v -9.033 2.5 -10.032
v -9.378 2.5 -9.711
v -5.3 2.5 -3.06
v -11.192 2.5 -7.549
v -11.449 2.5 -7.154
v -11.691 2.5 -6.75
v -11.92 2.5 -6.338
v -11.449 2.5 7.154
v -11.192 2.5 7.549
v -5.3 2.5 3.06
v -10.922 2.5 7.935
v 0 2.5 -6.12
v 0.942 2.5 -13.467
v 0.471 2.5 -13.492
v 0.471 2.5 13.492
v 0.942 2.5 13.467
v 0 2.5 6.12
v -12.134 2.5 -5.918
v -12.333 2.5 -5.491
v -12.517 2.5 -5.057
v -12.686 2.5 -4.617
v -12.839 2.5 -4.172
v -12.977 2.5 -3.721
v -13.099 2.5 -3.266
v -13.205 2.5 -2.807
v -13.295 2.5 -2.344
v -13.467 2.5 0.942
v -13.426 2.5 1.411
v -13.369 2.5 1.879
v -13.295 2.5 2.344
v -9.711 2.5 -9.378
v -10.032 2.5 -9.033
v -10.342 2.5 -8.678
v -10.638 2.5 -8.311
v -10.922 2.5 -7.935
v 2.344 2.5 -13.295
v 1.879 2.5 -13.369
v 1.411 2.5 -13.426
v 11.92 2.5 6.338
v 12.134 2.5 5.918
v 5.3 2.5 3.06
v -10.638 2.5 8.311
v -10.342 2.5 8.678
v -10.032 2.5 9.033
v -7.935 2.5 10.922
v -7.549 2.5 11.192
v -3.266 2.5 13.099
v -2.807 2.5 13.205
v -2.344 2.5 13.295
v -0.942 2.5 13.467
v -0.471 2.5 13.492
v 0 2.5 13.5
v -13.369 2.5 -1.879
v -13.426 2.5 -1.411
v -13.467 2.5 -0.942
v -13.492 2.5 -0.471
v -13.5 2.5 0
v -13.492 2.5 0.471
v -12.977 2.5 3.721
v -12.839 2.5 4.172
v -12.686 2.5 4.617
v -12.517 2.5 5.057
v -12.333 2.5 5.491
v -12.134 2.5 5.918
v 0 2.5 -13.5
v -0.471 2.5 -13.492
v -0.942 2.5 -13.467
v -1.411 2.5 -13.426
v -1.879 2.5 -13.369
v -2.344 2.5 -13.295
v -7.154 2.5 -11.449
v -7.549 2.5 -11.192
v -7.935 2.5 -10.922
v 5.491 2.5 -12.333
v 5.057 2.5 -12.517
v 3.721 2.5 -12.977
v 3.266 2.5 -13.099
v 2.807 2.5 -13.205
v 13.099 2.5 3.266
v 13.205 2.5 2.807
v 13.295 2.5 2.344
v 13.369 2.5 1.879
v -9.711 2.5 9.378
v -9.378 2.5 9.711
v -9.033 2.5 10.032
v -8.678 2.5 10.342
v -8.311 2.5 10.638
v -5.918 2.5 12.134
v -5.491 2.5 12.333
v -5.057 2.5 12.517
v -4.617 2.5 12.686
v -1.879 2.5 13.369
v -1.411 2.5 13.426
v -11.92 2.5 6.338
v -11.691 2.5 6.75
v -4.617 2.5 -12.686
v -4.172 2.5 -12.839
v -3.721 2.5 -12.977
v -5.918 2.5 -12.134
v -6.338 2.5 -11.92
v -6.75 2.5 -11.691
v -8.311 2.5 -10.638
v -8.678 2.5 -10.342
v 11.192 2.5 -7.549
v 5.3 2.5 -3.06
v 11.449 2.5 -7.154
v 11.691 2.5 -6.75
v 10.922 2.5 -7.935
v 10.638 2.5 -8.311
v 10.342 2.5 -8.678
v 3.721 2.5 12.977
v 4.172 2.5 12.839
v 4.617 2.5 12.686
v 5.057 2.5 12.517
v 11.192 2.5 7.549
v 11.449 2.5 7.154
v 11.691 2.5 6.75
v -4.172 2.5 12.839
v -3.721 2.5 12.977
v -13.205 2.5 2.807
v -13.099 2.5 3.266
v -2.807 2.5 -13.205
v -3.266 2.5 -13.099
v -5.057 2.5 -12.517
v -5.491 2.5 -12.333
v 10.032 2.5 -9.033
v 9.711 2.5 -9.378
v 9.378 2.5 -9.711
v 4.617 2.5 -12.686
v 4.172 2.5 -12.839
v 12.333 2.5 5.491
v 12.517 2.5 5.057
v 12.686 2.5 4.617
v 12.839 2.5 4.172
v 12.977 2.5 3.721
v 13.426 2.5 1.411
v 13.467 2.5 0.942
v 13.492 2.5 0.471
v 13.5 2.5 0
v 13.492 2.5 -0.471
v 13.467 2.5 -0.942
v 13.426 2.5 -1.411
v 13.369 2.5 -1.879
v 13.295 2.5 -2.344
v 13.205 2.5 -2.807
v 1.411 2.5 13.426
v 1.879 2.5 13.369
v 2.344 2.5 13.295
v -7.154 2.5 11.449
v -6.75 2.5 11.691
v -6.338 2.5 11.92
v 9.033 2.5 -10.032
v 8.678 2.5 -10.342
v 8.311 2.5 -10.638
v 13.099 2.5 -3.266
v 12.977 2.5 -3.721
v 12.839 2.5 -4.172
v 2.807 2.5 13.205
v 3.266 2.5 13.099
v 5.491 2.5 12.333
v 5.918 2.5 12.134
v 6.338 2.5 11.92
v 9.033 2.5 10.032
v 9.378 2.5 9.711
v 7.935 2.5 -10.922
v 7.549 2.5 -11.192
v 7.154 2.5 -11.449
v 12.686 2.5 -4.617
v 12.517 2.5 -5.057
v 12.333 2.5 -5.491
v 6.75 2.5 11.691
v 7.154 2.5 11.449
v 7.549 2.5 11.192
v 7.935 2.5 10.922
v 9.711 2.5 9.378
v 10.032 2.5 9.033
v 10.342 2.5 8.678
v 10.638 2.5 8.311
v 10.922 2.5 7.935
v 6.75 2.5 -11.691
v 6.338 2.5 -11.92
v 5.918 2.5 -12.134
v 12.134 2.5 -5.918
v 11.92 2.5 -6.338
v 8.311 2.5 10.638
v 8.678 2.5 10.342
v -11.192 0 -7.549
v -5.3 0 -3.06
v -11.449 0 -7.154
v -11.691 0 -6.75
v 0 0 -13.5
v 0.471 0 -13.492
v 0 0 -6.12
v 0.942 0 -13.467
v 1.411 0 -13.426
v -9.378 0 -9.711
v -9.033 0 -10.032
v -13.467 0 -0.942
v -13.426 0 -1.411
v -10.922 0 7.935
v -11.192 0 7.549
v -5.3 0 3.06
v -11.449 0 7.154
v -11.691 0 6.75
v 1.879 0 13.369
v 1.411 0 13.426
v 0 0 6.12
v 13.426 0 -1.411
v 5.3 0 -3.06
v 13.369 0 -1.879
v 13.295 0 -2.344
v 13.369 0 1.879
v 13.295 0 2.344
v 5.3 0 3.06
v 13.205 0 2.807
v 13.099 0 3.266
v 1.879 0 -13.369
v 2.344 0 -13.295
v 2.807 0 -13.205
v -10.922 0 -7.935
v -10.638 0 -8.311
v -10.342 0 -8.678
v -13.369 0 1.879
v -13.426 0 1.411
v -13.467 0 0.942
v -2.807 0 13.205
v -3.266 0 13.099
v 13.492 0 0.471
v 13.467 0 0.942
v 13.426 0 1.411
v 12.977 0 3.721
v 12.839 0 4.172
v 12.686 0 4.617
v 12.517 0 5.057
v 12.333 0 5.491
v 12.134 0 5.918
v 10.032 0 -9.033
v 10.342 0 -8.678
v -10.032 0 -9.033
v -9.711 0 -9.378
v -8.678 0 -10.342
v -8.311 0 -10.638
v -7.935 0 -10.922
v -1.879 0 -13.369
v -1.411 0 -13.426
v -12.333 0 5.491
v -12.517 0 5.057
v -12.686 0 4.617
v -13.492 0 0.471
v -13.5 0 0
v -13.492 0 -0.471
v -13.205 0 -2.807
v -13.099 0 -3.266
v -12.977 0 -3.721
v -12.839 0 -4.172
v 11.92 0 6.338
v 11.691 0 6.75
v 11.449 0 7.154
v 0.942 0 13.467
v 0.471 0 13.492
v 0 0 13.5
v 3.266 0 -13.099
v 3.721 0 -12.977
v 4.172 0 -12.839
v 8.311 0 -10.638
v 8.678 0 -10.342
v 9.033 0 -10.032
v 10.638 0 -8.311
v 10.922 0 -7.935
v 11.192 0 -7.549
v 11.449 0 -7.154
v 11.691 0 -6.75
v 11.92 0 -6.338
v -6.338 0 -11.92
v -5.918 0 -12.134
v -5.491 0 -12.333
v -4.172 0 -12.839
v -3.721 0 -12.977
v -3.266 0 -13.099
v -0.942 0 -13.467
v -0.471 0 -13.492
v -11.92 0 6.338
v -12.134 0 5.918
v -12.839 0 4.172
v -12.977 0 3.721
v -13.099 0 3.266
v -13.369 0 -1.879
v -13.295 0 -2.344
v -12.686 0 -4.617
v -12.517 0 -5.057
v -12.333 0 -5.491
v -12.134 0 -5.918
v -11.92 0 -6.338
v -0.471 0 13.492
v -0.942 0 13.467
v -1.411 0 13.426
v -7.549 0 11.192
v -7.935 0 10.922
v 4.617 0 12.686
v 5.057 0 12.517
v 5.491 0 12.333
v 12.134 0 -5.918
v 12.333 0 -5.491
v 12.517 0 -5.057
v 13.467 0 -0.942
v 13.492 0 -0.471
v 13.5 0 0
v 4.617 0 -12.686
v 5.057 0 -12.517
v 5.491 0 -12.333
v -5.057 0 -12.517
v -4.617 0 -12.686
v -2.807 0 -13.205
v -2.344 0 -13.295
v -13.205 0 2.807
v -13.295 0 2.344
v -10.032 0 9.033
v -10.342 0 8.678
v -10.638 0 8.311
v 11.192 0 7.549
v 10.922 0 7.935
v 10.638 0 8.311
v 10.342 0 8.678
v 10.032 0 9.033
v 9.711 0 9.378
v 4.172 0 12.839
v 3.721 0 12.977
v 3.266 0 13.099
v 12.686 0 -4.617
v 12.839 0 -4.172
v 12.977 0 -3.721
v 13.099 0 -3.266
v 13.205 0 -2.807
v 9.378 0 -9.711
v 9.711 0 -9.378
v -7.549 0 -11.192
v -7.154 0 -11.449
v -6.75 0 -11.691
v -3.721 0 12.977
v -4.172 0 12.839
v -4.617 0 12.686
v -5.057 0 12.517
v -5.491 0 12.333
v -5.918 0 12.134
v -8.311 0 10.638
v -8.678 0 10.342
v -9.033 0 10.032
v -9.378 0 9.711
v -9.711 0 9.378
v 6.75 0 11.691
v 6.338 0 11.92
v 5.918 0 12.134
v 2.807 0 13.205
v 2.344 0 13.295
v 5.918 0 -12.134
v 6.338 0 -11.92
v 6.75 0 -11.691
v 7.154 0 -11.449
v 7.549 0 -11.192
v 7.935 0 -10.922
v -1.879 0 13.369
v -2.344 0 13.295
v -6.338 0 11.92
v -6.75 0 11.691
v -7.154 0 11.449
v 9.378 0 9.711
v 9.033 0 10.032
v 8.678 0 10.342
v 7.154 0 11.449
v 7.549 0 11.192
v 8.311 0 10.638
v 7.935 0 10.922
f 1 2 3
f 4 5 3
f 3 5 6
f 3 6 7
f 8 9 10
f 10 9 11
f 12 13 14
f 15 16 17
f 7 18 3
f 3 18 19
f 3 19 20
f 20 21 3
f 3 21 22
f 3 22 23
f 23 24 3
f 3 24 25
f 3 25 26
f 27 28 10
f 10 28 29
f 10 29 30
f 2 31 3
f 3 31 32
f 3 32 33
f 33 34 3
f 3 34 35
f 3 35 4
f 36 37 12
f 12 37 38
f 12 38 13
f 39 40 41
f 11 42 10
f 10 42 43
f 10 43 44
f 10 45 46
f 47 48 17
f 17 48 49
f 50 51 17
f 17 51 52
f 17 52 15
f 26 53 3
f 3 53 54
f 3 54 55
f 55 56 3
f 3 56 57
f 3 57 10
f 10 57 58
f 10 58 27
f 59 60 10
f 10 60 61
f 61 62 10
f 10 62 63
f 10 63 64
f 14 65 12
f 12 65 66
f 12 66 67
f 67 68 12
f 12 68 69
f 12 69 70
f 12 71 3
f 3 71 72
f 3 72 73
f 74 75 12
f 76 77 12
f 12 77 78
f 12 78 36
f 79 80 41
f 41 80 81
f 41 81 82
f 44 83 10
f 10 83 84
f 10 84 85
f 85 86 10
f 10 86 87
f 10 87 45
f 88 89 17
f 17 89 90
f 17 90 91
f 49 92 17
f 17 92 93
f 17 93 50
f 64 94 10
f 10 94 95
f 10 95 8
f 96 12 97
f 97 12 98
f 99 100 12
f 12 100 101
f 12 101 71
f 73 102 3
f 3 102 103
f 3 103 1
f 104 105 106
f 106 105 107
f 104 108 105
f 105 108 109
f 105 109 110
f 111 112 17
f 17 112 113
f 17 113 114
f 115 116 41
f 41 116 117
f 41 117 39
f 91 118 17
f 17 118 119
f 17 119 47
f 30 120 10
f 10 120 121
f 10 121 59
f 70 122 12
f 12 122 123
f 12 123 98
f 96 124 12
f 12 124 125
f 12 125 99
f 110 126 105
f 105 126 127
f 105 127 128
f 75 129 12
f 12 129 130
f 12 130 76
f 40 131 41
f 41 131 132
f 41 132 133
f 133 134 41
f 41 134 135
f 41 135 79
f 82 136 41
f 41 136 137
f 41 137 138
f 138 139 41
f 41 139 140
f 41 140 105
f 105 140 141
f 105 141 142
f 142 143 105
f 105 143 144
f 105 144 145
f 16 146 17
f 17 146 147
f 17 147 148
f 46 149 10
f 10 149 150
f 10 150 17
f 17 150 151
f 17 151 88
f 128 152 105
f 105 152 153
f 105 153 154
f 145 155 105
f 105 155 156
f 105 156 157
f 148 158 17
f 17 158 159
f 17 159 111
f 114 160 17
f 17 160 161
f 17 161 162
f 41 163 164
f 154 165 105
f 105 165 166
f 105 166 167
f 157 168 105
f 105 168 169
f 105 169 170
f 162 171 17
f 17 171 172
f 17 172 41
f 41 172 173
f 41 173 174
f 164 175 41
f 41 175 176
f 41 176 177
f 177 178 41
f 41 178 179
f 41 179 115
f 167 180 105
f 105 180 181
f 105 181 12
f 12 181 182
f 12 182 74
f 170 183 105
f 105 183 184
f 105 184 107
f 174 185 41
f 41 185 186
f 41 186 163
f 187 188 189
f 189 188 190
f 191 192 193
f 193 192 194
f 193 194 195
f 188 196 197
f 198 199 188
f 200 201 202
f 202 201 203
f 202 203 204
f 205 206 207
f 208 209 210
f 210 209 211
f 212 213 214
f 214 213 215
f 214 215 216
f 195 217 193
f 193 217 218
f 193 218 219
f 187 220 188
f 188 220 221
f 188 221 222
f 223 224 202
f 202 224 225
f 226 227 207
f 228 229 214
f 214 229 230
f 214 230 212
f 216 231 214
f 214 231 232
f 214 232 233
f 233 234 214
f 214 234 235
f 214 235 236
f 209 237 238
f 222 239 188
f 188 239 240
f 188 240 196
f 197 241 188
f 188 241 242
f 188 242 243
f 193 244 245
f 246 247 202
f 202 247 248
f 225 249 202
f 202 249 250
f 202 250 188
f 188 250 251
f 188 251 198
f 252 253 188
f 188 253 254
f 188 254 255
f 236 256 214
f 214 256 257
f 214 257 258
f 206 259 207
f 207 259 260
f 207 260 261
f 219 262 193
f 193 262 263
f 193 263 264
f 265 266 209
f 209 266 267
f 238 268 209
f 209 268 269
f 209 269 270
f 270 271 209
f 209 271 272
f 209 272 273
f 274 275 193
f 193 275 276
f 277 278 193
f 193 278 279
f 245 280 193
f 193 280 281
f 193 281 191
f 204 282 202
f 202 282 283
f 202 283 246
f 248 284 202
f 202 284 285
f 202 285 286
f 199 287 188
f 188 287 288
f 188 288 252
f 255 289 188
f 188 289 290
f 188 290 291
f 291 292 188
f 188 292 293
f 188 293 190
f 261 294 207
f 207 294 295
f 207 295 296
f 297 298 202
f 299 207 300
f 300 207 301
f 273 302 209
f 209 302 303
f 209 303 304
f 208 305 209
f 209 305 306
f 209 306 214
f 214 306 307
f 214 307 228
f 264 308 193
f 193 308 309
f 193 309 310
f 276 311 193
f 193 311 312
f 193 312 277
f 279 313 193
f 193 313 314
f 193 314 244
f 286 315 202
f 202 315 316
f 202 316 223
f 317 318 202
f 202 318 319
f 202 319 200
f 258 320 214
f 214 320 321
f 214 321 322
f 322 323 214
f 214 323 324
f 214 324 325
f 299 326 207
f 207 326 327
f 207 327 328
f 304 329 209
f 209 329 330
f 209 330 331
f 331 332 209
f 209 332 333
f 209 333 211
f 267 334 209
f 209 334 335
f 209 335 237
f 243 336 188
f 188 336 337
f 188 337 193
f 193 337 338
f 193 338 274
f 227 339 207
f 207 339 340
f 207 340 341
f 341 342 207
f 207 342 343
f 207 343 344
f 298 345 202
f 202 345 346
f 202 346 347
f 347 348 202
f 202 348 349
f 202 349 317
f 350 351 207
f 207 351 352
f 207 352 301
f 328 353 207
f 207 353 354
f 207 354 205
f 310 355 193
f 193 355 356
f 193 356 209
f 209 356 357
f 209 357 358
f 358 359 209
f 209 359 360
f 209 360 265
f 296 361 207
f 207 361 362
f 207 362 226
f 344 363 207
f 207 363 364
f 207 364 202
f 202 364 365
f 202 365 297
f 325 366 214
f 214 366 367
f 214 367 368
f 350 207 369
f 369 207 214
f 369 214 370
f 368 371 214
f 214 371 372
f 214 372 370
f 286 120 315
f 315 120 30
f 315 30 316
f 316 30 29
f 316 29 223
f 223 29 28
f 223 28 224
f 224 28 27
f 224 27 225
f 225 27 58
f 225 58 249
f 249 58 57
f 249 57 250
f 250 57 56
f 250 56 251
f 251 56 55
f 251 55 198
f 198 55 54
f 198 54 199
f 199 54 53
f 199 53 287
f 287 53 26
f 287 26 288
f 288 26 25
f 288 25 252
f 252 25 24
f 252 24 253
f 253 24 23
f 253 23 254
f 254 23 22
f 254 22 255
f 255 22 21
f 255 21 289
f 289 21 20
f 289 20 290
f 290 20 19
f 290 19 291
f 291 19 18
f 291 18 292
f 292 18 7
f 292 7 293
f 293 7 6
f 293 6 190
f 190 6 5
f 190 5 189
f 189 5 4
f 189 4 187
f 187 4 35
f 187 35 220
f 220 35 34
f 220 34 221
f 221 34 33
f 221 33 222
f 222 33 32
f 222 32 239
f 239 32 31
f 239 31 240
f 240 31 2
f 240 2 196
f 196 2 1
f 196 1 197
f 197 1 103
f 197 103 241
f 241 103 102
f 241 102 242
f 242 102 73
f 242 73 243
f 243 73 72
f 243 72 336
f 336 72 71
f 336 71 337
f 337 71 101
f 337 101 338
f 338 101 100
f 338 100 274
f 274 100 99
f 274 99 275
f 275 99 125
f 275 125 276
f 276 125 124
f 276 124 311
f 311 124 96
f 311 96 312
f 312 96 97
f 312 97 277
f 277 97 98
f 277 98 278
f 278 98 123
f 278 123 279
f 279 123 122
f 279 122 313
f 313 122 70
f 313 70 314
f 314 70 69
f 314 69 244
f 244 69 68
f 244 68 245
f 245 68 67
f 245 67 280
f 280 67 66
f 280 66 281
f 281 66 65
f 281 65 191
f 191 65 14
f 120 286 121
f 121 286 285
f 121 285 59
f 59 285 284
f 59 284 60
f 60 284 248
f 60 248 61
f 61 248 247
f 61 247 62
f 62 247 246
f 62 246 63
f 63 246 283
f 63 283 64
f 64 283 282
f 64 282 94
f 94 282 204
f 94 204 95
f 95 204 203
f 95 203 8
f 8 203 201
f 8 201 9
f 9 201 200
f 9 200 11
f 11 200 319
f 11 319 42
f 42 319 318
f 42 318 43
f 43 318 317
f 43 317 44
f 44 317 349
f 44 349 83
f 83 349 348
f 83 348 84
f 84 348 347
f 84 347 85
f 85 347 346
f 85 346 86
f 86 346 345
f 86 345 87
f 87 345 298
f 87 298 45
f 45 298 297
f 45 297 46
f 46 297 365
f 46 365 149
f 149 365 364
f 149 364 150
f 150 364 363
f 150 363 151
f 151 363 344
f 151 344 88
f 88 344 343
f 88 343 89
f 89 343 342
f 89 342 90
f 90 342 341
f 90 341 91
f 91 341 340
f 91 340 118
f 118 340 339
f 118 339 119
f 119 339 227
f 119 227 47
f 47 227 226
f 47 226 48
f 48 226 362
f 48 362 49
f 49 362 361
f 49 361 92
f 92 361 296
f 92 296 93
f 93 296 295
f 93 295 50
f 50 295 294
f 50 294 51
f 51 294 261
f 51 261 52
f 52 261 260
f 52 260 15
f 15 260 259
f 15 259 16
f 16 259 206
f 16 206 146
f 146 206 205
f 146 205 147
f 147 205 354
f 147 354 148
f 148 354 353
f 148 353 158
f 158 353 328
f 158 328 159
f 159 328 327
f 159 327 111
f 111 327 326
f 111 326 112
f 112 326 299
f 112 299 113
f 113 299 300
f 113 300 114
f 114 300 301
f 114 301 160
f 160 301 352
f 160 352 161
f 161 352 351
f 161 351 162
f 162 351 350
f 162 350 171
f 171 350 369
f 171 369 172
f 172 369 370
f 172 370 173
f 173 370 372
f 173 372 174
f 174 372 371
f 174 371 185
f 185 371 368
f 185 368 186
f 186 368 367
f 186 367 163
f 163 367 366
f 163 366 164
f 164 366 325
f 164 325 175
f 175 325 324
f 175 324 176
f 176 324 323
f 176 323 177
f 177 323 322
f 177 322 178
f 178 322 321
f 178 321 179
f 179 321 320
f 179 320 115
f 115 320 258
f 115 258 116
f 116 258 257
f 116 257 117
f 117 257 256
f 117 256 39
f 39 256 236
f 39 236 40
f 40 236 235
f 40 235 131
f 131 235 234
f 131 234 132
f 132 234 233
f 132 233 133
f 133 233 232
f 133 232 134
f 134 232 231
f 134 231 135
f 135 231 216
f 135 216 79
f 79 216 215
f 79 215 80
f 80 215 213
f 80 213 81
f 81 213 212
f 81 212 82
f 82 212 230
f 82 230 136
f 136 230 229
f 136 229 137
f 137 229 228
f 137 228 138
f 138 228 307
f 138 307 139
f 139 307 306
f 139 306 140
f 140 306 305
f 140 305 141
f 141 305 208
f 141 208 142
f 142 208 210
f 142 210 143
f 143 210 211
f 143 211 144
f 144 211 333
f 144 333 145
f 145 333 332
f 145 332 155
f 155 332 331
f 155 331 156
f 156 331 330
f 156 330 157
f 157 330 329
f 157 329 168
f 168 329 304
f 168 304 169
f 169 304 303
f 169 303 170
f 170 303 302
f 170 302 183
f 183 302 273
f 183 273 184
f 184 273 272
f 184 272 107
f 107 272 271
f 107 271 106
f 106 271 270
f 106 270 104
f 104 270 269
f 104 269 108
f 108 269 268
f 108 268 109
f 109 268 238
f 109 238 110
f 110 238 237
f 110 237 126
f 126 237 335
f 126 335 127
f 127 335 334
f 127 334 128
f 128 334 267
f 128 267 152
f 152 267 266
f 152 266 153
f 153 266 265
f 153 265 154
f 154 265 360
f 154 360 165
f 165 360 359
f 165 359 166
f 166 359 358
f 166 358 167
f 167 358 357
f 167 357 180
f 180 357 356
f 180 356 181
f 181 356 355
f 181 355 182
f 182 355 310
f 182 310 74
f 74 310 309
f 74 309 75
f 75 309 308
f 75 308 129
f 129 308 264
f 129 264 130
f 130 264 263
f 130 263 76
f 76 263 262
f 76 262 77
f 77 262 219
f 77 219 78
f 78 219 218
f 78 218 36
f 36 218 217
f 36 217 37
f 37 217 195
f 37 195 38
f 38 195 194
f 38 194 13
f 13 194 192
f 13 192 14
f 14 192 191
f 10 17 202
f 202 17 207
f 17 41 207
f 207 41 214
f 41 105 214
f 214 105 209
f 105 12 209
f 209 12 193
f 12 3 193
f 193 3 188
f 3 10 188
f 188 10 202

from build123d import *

# Parameters (mm, degrees)
SKETCH_1_R      = 13.5
EXTRUDE_1_DEPTH = 2.5


with BuildPart() as part:
    # 草图1 → 凸台-拉伸1 (new body)
    with BuildSketch(Plane(origin=(0, 0, 0), x_dir=(1, 0, 0), z_dir=(0, 1, 0))):
        with Locations(Location((0, 0, 0), (0, 0, 90))):
            Circle(SKETCH_1_R)
        Polygon((0, -6.119912853), (5.3, -3.059956427), (5.3, 3.059956427), (0, 6.119912853), (-5.3, 3.059956427), (-5.3, -3.059956427), align=None, mode=Mode.SUBTRACT)
    extrude(amount=EXTRUDE_1_DEPTH)


solid = part.part
